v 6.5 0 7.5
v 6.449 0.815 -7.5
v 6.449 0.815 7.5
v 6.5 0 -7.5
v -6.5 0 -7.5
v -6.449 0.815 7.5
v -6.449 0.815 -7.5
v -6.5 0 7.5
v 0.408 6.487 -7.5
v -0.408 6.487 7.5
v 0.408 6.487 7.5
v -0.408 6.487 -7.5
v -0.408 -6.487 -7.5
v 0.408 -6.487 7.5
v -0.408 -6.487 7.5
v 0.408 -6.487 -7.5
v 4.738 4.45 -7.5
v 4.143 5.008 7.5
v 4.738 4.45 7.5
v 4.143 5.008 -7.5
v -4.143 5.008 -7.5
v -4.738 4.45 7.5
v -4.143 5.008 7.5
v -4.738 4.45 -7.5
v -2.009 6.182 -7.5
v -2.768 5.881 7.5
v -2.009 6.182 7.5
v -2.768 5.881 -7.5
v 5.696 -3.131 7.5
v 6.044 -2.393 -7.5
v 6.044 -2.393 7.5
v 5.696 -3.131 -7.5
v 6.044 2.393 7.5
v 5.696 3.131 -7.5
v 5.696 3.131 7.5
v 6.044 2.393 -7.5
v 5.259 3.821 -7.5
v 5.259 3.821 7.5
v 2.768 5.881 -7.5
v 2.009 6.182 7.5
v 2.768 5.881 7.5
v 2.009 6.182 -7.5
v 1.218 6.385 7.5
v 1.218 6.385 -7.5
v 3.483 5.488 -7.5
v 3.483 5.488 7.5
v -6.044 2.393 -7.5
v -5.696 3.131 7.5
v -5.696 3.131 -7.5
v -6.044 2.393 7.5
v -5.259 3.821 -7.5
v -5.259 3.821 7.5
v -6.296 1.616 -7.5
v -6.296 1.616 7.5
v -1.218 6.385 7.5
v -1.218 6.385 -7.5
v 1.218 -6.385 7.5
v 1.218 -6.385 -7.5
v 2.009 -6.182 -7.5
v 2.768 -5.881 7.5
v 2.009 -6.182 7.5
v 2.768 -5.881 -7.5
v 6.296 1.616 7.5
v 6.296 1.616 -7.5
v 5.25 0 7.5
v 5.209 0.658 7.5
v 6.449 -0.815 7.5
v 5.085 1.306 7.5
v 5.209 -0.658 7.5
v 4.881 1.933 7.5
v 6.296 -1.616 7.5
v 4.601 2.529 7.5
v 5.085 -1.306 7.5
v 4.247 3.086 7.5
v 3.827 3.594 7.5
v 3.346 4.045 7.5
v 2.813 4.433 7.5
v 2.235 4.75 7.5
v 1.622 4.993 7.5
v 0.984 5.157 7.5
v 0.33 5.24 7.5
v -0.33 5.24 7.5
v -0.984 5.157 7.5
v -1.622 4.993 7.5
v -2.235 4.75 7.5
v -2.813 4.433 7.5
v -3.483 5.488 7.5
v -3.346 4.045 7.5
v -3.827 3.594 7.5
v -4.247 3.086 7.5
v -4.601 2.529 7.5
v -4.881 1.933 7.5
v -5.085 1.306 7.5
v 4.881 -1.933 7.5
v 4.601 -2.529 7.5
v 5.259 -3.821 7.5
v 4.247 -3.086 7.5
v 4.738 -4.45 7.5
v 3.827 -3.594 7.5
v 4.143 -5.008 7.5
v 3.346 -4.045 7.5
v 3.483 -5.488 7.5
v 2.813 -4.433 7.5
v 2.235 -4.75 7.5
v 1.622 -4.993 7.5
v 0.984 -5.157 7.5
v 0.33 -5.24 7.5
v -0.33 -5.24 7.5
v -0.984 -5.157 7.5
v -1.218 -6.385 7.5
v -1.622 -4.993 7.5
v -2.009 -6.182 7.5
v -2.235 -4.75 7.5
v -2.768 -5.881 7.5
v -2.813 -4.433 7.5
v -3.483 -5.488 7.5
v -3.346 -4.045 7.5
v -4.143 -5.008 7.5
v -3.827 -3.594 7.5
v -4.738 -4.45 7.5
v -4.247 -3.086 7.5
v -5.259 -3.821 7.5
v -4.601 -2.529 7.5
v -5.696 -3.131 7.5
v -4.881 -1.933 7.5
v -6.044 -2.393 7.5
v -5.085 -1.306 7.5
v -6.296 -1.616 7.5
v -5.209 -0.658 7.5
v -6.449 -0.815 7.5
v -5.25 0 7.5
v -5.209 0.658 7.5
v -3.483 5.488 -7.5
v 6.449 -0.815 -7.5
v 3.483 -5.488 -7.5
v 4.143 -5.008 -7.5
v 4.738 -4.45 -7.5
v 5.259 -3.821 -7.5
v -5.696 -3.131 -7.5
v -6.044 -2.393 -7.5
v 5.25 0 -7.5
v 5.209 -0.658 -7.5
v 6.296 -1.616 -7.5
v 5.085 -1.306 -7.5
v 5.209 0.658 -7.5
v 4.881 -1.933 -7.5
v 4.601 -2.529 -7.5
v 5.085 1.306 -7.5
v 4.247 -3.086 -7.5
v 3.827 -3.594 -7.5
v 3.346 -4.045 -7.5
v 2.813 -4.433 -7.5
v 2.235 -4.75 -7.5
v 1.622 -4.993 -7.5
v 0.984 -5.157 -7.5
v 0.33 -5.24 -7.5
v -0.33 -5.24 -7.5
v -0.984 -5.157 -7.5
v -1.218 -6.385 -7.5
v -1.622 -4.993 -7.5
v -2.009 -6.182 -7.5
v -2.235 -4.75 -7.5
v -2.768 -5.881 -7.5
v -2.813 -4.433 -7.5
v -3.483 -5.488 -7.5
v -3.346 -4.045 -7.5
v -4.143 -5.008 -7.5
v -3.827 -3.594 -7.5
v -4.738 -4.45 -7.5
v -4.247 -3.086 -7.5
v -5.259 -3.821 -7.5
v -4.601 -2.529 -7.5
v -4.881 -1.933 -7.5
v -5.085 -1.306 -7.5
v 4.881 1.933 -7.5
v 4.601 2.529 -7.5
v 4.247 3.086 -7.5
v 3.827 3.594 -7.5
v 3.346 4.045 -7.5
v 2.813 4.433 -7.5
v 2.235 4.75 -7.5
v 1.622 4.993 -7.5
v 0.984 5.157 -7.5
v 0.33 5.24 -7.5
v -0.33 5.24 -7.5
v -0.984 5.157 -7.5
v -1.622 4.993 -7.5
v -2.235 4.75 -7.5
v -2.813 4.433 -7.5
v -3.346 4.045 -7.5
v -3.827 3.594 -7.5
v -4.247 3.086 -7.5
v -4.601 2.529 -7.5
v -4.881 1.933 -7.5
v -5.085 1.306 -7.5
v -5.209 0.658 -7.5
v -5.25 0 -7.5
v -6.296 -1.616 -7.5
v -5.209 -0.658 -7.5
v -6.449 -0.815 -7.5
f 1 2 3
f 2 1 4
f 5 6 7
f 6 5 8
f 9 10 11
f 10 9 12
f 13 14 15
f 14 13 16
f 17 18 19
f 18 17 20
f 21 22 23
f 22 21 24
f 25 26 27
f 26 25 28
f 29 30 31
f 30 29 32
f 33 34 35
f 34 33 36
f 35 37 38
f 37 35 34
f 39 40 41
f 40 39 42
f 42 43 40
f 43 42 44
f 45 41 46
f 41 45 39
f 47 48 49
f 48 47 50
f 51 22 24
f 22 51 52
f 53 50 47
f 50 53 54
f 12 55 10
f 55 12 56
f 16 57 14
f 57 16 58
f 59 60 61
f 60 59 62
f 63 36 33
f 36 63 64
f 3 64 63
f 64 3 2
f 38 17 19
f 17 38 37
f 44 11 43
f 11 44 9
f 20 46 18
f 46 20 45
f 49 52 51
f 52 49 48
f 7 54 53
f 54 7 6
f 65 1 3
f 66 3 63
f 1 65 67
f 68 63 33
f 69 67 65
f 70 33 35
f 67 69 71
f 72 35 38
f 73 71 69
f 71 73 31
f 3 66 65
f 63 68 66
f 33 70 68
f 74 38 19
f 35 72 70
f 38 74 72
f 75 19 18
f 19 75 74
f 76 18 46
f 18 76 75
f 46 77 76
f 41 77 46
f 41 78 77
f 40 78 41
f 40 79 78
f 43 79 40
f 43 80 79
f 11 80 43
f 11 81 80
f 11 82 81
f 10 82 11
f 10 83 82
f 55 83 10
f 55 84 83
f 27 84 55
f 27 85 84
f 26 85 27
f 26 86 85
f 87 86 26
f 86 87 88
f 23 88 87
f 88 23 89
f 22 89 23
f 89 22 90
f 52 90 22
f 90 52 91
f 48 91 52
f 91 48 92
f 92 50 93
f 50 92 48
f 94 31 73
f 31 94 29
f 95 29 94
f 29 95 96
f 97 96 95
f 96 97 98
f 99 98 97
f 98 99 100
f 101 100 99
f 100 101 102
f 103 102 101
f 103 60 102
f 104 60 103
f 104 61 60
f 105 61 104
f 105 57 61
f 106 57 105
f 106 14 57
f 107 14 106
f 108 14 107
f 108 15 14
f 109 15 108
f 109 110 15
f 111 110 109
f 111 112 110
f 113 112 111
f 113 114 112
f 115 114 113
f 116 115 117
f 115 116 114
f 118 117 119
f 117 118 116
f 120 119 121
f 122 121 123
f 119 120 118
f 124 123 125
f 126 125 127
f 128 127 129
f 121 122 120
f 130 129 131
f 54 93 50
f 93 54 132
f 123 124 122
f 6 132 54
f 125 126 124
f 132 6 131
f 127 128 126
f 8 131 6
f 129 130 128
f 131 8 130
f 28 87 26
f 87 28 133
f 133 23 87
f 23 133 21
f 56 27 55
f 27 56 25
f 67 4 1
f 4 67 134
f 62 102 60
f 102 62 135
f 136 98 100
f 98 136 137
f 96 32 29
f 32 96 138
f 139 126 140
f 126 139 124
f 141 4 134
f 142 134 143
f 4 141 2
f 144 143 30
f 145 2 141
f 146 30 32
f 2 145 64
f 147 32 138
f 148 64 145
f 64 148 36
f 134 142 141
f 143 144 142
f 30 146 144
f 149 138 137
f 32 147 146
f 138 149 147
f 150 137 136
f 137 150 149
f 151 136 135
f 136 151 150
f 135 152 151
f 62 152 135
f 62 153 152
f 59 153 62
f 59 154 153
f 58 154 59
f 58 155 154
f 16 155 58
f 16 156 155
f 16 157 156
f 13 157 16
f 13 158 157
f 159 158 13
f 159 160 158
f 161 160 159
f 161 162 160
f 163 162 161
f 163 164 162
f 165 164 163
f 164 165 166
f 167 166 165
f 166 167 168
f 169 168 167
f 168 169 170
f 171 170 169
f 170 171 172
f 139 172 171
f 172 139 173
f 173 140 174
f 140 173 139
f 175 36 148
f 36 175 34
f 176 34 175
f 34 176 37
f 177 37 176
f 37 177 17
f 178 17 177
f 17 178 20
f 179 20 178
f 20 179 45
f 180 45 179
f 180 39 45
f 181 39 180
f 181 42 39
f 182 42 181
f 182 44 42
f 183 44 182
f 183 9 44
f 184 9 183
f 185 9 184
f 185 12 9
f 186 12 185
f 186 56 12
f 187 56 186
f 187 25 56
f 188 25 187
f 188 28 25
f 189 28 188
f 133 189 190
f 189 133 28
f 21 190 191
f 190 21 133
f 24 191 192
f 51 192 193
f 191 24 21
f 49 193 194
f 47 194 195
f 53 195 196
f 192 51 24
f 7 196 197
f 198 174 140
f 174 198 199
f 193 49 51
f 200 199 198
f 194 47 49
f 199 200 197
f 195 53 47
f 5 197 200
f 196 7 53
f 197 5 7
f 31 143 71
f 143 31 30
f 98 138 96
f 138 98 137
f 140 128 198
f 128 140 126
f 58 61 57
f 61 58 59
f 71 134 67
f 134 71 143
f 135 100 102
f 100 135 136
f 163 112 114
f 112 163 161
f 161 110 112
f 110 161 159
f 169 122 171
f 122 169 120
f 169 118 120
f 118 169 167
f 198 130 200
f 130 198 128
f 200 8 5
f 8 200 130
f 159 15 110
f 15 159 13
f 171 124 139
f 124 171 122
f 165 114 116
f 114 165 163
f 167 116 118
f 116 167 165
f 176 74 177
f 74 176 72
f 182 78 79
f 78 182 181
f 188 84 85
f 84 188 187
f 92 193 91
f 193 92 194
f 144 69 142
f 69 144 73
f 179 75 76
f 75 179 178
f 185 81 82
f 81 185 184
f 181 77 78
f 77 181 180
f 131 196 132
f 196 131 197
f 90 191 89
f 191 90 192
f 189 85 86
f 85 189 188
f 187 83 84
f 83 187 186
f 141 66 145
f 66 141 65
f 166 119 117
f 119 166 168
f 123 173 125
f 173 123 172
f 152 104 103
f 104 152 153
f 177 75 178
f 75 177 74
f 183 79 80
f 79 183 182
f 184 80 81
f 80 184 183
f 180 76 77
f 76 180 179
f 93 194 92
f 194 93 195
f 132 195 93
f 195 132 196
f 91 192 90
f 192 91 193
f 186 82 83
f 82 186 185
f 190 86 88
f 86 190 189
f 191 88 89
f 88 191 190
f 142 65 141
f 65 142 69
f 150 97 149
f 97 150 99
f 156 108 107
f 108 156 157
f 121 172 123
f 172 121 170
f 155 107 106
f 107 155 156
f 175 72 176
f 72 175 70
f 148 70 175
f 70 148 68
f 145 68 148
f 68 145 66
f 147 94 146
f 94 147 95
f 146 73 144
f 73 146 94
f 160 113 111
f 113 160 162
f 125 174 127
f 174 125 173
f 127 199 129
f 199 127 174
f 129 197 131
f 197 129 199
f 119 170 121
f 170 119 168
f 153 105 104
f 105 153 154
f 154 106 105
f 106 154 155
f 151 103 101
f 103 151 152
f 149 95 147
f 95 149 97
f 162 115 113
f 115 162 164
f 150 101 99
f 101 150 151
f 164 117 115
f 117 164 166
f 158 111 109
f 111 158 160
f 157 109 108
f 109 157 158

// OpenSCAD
$fn = 50;


difference() {
	union() {
		translate(v = [0, 0, -7.5000000000]) {
			cylinder(h = 15, r = 6.5000000000);
		}
	}
	union() {
		translate(v = [0, 0, -100.0000000000]) {
			cylinder(h = 200, r = 5.2500000000);
		}
	}
}
